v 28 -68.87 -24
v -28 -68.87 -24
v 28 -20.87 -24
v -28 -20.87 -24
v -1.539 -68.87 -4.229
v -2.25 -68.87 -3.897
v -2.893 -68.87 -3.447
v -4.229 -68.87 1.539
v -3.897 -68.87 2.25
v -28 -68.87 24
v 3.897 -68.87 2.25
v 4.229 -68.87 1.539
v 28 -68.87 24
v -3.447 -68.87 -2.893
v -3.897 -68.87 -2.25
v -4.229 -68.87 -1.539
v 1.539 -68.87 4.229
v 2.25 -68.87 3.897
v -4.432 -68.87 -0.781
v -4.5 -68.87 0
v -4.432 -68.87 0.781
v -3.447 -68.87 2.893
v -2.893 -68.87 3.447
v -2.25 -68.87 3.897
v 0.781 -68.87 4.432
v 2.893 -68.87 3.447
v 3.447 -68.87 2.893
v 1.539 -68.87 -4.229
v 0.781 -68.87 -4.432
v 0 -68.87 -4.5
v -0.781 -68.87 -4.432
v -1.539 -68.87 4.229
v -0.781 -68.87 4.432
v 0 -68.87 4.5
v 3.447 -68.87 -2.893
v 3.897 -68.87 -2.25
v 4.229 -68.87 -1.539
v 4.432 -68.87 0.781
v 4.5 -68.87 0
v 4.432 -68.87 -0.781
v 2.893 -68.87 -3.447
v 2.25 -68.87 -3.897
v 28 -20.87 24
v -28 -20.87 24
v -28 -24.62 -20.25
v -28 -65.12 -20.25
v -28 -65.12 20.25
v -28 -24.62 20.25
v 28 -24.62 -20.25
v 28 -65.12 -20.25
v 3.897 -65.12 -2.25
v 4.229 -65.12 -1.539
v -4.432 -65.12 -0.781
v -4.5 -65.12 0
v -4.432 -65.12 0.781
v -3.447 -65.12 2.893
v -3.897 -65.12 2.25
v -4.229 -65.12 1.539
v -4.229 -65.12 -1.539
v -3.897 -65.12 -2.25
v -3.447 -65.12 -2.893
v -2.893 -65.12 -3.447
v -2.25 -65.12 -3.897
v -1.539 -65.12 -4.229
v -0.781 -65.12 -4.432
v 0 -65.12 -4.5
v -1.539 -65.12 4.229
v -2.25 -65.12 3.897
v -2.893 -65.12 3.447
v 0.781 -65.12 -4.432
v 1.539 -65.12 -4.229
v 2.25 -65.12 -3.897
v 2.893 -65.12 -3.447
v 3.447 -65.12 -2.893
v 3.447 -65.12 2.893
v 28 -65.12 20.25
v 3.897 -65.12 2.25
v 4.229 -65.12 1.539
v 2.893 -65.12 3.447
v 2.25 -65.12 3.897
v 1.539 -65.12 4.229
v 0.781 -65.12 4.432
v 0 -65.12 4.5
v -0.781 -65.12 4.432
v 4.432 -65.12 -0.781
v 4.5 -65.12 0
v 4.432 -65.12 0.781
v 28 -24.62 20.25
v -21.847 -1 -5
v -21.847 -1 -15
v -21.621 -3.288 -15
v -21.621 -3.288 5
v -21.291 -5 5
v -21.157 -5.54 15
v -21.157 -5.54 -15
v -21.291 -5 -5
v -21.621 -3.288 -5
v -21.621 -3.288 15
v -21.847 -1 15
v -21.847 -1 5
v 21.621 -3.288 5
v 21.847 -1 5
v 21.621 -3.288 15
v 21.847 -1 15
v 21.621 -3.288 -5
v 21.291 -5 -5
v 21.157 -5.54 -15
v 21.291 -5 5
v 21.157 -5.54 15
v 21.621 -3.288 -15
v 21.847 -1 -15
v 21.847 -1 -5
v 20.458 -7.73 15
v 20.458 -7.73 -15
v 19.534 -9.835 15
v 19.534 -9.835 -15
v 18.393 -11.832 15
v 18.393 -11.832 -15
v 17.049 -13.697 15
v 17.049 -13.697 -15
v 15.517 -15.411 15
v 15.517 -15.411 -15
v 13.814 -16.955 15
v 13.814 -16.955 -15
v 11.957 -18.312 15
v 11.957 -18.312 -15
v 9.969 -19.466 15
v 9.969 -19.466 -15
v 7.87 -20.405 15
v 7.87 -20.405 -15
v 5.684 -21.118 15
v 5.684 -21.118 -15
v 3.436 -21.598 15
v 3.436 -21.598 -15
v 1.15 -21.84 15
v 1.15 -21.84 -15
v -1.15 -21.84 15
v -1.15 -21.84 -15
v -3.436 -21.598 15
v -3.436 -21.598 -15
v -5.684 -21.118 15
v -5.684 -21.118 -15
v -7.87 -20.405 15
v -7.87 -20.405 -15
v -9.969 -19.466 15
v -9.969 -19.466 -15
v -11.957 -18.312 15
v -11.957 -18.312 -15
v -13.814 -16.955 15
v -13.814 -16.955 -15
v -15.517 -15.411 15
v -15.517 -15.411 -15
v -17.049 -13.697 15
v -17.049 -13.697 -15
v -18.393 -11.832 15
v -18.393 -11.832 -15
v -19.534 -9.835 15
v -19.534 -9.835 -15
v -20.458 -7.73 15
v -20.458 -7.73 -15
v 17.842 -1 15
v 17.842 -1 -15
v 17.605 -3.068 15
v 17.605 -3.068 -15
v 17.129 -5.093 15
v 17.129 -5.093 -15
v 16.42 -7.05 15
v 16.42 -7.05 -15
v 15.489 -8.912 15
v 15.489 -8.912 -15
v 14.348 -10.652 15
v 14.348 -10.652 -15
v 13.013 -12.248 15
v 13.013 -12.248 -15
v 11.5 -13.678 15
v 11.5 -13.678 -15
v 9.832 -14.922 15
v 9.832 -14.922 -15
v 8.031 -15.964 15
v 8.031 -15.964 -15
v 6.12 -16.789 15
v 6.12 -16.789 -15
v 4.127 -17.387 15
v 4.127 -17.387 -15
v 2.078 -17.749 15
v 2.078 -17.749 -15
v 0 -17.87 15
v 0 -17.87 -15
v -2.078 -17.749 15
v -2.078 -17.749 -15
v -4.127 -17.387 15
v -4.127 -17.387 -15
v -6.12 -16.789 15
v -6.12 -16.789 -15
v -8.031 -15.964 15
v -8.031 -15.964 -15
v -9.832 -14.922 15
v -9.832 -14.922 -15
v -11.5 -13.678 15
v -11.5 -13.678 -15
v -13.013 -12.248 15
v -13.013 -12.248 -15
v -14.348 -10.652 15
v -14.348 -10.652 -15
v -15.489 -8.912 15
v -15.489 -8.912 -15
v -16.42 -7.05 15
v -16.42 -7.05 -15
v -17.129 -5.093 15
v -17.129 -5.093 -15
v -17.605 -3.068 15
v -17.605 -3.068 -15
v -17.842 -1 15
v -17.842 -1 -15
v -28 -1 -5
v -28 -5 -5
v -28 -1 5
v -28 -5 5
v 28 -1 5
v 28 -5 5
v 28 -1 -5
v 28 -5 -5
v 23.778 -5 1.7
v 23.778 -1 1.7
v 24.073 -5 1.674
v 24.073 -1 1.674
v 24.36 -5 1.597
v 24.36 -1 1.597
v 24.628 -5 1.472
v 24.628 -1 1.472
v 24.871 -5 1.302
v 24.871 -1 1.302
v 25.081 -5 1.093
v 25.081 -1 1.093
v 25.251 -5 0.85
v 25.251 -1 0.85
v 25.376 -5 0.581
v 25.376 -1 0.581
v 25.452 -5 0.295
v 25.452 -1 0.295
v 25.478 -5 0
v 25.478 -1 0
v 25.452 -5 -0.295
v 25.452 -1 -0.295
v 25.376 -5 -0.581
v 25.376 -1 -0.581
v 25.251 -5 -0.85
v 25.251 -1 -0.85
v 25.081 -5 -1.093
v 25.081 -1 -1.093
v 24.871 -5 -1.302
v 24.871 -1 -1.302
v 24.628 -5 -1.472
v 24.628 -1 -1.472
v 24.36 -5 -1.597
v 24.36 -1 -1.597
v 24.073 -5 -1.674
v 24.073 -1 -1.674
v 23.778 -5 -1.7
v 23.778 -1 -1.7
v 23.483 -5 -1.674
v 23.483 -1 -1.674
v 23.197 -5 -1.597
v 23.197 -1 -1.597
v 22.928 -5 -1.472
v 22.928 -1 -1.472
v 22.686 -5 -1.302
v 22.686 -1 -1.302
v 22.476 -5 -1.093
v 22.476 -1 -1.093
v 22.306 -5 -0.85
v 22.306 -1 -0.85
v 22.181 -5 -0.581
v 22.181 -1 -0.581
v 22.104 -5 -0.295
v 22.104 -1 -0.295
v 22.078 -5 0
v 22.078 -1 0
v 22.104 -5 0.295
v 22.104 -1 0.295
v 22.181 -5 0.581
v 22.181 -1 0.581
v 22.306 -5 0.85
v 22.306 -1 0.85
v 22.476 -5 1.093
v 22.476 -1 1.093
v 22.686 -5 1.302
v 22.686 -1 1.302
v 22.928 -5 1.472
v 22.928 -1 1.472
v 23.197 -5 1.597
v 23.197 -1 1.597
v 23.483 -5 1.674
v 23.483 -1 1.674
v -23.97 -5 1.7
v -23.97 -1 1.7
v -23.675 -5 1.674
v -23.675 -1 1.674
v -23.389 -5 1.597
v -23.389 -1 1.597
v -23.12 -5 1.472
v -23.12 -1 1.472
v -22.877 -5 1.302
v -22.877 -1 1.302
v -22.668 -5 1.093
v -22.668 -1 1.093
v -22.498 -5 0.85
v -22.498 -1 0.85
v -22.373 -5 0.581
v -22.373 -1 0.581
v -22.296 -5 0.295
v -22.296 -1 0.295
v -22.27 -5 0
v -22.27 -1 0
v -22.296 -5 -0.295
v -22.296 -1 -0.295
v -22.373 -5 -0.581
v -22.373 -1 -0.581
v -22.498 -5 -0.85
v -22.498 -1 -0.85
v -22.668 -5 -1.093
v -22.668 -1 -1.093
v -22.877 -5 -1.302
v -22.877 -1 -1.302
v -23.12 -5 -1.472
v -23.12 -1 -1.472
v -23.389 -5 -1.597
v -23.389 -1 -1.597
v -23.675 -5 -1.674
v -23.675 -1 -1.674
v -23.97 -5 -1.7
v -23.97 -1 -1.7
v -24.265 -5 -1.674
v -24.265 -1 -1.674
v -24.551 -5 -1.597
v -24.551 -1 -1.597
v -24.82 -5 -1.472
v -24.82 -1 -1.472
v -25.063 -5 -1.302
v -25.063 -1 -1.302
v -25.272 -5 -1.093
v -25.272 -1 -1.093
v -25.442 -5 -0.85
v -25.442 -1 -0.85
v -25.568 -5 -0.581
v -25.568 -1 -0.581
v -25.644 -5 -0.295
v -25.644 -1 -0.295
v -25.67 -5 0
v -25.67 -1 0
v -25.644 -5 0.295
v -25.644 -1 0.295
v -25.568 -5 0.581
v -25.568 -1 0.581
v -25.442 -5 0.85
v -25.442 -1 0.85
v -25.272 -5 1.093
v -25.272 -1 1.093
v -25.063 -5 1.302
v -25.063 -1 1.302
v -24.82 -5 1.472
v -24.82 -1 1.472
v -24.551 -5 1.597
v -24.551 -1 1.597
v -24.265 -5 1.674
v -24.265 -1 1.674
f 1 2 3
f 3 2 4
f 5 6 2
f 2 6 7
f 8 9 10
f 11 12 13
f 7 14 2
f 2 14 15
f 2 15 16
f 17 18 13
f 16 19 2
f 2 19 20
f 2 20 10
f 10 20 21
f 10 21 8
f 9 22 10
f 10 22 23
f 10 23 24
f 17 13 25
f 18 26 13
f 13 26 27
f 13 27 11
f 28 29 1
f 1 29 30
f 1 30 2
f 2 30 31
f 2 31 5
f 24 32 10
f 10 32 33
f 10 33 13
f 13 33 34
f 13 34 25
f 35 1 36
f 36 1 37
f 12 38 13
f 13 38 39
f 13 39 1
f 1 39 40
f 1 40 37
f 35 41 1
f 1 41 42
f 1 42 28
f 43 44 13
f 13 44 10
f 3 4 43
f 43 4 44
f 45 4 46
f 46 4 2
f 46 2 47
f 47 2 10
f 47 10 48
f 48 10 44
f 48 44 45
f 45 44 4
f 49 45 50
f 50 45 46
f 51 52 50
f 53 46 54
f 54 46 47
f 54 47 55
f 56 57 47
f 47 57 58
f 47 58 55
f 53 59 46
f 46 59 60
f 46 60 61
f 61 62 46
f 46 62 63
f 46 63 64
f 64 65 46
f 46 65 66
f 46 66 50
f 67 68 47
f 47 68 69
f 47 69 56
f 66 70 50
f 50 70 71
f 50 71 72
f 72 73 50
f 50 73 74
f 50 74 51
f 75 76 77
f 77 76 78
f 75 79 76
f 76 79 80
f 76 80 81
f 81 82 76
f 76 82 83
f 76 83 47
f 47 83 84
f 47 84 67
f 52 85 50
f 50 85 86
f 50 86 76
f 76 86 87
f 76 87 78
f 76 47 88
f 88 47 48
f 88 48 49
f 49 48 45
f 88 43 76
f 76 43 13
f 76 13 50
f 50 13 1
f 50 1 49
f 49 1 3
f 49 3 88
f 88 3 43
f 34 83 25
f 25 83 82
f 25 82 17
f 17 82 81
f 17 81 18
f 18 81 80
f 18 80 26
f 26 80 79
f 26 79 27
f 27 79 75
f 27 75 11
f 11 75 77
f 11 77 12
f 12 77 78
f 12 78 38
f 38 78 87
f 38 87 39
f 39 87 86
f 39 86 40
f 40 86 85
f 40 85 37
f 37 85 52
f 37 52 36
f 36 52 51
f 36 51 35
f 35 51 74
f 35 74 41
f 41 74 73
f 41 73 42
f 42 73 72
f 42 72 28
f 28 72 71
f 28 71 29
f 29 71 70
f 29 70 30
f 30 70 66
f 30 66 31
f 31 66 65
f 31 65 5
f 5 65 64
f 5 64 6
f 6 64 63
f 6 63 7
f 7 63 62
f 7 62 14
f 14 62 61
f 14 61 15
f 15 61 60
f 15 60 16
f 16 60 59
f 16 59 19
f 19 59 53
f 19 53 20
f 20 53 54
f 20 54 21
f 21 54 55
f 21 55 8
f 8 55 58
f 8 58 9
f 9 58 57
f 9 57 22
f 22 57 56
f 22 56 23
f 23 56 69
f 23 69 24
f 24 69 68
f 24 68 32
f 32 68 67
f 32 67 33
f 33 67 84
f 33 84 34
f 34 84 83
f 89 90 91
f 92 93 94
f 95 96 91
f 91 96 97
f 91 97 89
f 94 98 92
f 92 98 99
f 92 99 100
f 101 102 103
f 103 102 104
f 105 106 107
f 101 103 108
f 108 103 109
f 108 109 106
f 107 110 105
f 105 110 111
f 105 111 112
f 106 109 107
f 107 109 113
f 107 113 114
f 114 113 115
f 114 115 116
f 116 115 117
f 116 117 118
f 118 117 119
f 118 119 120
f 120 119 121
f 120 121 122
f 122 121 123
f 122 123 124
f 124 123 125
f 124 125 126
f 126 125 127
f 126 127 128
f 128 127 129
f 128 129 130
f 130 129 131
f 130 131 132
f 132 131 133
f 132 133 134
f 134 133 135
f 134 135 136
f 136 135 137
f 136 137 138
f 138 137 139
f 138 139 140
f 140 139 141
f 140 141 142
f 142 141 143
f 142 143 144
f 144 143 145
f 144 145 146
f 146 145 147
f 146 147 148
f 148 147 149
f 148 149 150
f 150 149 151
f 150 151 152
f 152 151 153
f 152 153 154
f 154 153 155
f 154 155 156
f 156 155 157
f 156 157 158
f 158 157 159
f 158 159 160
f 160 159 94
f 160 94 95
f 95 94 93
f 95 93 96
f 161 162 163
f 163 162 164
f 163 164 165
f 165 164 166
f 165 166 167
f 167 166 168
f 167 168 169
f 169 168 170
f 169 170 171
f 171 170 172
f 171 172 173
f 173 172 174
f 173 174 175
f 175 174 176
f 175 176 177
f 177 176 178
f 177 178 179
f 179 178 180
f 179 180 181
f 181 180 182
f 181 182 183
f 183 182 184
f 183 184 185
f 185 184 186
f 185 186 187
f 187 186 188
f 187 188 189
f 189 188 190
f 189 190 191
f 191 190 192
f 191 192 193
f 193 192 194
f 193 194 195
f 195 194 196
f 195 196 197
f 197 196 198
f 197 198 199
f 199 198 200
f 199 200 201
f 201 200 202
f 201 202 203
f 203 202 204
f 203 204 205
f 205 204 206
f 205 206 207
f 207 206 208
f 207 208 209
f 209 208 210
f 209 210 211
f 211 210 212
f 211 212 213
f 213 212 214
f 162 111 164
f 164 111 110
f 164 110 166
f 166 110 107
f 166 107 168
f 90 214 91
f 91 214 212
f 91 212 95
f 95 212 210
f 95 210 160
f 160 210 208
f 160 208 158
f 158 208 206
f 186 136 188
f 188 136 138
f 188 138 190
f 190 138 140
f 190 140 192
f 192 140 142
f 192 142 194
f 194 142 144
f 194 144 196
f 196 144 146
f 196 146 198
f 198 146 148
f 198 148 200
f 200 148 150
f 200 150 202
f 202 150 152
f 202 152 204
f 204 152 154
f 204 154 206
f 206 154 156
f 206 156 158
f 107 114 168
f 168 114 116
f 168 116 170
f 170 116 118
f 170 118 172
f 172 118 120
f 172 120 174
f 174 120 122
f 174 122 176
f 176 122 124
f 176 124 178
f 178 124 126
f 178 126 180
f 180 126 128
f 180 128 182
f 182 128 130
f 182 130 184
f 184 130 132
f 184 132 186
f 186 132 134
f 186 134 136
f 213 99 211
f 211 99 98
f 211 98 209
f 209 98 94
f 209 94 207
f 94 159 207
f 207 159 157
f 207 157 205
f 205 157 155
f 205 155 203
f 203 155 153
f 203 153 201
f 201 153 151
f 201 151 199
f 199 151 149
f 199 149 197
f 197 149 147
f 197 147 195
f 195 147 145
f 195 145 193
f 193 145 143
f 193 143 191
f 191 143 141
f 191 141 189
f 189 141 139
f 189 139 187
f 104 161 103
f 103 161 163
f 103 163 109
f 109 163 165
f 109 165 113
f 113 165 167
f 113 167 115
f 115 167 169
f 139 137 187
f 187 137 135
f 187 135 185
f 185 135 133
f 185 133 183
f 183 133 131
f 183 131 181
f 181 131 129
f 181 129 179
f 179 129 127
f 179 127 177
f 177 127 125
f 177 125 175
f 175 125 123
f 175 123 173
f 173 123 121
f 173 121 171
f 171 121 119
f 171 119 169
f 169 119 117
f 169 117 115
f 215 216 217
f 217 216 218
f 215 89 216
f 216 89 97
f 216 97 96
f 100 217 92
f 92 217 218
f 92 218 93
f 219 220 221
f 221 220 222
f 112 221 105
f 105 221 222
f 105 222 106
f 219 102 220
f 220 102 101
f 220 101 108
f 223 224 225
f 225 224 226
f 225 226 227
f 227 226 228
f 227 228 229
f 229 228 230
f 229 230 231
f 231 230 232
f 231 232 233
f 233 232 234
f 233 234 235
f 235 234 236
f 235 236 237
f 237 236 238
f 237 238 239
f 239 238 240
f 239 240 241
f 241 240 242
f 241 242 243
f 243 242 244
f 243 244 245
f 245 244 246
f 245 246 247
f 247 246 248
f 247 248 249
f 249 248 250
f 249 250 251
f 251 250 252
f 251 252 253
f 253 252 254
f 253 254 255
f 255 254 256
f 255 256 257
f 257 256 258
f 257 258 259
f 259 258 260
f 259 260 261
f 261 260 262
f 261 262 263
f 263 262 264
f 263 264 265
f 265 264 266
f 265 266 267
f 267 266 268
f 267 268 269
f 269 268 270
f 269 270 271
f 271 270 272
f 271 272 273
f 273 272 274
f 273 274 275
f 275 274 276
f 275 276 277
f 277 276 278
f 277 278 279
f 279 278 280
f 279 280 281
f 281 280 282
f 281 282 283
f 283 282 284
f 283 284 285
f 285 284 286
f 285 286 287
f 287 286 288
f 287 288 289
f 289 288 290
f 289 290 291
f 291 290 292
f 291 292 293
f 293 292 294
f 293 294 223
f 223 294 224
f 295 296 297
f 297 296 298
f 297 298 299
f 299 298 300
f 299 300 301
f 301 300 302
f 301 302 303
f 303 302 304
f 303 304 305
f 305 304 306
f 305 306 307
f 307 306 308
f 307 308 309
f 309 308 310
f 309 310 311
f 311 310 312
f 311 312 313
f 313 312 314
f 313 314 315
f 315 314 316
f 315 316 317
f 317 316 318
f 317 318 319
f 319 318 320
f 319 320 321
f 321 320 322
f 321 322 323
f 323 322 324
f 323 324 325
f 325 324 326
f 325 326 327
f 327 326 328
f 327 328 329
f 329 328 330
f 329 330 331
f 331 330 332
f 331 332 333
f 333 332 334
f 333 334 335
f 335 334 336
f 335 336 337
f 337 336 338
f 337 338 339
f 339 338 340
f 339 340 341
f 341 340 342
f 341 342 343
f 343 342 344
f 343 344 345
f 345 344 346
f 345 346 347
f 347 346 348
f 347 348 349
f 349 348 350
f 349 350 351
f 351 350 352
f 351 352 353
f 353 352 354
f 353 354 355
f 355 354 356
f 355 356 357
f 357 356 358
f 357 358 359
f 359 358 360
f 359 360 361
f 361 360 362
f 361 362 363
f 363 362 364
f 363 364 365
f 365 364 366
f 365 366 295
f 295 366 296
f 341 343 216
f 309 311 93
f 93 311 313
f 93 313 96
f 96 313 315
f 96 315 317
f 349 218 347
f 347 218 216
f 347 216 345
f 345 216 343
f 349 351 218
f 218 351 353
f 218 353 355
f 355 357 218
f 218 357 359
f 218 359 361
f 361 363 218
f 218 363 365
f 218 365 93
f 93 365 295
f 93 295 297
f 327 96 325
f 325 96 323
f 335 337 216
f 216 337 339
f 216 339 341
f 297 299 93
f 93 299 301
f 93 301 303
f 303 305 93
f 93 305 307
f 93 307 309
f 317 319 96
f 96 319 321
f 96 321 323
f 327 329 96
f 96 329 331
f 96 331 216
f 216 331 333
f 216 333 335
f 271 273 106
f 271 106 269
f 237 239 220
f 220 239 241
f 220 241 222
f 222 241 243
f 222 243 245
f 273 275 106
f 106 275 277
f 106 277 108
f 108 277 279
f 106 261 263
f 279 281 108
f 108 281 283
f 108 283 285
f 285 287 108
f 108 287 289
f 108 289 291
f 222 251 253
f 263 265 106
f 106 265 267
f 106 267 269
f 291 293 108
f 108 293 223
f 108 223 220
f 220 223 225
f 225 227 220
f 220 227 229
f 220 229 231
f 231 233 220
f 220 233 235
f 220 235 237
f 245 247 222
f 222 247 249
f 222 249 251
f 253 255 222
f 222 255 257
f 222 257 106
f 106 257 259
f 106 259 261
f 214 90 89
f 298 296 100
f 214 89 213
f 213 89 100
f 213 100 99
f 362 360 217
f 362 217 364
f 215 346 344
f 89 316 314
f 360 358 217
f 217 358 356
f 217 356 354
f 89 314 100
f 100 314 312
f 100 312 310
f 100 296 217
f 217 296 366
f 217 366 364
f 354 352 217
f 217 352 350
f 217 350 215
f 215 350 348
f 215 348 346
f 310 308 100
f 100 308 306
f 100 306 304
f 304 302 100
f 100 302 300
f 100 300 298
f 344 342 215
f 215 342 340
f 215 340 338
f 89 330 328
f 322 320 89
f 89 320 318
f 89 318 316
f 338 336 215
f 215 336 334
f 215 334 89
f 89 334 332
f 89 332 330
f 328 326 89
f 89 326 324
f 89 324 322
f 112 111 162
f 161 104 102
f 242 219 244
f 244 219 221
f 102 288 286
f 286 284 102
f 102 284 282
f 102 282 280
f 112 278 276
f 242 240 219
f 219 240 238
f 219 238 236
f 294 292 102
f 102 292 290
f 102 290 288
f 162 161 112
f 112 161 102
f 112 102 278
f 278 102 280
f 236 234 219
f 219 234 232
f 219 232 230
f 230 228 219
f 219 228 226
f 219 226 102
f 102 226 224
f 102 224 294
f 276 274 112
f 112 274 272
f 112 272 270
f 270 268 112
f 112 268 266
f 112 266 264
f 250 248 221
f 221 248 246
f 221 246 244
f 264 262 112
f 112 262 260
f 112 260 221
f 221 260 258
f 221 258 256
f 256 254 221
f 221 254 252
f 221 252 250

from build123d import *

# Parameters (mm, degrees)
SKETCH1_W                = 4
SKETCH1_H                = 30
REVOLVE1_ANGLE           = 180
SKETCH6_W                = 8.13
SKETCH6_H                = 5
BOSS_EXTRUDE3_DEPTH      = 5
BOSS_EXTRUDE3_DEPTH_BACK = 5
M3_CLEARANCE_HOLE1_D     = 3.4
M3_CLEARANCE_HOLE1_DEPTH = 8.87
M3_CLEARANCE_HOLE1_TIP   = 1.021463052
SKETCH11_W               = 62.08504313
SKETCH11_H               = 41.873291452
CUT_EXTRUDE1_DEPTH       = 1
SKETCH4_W                = 48
SKETCH4_H                = 48
SKETCH4_W_2              = 40.5
SKETCH4_H_2              = 40.5
BOSS_EXTRUDE4_DEPTH      = 28
BOSS_EXTRUDE4_DEPTH_BACK = 28


with BuildPart() as part:
    # Sketch1 → Revolve1 (revolve)
    with BuildSketch(Plane(origin=(0, 0, 0), x_dir=(1, 0, 0), z_dir=(0, 1, 0))):
        with Locations((-19.87, 0)):
            Rectangle(SKETCH1_W, SKETCH1_H)
    revolve(axis=Axis((0, 0, -19.621046531), (0, 0, 1)), revolution_arc=REVOLVE1_ANGLE)

    # Sketch6 → Boss-Extrude3 (add, two sides)
    with BuildSketch(Plane.XY) as boss_extrude3_sk:
        with Locations((-23.935, -2.5)):
            Rectangle(SKETCH6_W, SKETCH6_H)
        with Locations((23.935, -2.5)):
            Rectangle(SKETCH6_W, SKETCH6_H)
    extrude(amount=BOSS_EXTRUDE3_DEPTH)
    extrude(boss_extrude3_sk.sketch, amount=-BOSS_EXTRUDE3_DEPTH_BACK)

    # M3 Clearance Hole1
    with Locations(Plane(origin=(0, 0, 0), x_dir=(1, 0, 0), z_dir=(0, 1, 0))):
        with Locations((-23.970037453, 0), (23.778277154, 0)):
            Hole(M3_CLEARANCE_HOLE1_D / 2, depth=M3_CLEARANCE_HOLE1_DEPTH)
            with Locations((0, 0, -(M3_CLEARANCE_HOLE1_DEPTH + M3_CLEARANCE_HOLE1_TIP / 2))):  # 118° drill point
                Cone(0, M3_CLEARANCE_HOLE1_D / 2, M3_CLEARANCE_HOLE1_TIP, mode=Mode.SUBTRACT)

    # Sketch11 → Cut-Extrude1 (cut)
    with BuildSketch(Plane(origin=(0, 0, 0), x_dir=(1, 0, 0), z_dir=(0, 1, 0))):
        Rectangle(SKETCH11_W, SKETCH11_H)
    extrude(amount=-CUT_EXTRUDE1_DEPTH, mode=Mode.SUBTRACT)


with BuildPart() as body_2:
    # Sketch4 → Boss-Extrude4 (new body, two sides)
    with BuildSketch(Plane(origin=(0, 0, 0), x_dir=(0, 0, -1), z_dir=(1, 0, 0))) as boss_extrude4_sk:
        with Locations((0, -44.87)):
            Rectangle(SKETCH4_W, SKETCH4_H)
        with Locations((0, -44.87)):
            Rectangle(SKETCH4_W_2, SKETCH4_H_2, mode=Mode.SUBTRACT)
    extrude(amount=BOSS_EXTRUDE4_DEPTH)
    extrude(boss_extrude4_sk.sketch, amount=-BOSS_EXTRUDE4_DEPTH_BACK)

    # Sketch10 → M8 Clearance Hole1 (revolve, cut)
    with BuildSketch(Plane(origin=(0, -65.12, 0), x_dir=(0, 0, 1), z_dir=(1, 0, 0))):
        Polygon((0, 0), (0, 11.573872786), (4.5, 8.87), (4.5, 0), align=None)
    revolve(axis=Axis((0, -58.77, 0), (0, -1, 0)), mode=Mode.SUBTRACT)


solid = Compound([part.part, body_2.part])
